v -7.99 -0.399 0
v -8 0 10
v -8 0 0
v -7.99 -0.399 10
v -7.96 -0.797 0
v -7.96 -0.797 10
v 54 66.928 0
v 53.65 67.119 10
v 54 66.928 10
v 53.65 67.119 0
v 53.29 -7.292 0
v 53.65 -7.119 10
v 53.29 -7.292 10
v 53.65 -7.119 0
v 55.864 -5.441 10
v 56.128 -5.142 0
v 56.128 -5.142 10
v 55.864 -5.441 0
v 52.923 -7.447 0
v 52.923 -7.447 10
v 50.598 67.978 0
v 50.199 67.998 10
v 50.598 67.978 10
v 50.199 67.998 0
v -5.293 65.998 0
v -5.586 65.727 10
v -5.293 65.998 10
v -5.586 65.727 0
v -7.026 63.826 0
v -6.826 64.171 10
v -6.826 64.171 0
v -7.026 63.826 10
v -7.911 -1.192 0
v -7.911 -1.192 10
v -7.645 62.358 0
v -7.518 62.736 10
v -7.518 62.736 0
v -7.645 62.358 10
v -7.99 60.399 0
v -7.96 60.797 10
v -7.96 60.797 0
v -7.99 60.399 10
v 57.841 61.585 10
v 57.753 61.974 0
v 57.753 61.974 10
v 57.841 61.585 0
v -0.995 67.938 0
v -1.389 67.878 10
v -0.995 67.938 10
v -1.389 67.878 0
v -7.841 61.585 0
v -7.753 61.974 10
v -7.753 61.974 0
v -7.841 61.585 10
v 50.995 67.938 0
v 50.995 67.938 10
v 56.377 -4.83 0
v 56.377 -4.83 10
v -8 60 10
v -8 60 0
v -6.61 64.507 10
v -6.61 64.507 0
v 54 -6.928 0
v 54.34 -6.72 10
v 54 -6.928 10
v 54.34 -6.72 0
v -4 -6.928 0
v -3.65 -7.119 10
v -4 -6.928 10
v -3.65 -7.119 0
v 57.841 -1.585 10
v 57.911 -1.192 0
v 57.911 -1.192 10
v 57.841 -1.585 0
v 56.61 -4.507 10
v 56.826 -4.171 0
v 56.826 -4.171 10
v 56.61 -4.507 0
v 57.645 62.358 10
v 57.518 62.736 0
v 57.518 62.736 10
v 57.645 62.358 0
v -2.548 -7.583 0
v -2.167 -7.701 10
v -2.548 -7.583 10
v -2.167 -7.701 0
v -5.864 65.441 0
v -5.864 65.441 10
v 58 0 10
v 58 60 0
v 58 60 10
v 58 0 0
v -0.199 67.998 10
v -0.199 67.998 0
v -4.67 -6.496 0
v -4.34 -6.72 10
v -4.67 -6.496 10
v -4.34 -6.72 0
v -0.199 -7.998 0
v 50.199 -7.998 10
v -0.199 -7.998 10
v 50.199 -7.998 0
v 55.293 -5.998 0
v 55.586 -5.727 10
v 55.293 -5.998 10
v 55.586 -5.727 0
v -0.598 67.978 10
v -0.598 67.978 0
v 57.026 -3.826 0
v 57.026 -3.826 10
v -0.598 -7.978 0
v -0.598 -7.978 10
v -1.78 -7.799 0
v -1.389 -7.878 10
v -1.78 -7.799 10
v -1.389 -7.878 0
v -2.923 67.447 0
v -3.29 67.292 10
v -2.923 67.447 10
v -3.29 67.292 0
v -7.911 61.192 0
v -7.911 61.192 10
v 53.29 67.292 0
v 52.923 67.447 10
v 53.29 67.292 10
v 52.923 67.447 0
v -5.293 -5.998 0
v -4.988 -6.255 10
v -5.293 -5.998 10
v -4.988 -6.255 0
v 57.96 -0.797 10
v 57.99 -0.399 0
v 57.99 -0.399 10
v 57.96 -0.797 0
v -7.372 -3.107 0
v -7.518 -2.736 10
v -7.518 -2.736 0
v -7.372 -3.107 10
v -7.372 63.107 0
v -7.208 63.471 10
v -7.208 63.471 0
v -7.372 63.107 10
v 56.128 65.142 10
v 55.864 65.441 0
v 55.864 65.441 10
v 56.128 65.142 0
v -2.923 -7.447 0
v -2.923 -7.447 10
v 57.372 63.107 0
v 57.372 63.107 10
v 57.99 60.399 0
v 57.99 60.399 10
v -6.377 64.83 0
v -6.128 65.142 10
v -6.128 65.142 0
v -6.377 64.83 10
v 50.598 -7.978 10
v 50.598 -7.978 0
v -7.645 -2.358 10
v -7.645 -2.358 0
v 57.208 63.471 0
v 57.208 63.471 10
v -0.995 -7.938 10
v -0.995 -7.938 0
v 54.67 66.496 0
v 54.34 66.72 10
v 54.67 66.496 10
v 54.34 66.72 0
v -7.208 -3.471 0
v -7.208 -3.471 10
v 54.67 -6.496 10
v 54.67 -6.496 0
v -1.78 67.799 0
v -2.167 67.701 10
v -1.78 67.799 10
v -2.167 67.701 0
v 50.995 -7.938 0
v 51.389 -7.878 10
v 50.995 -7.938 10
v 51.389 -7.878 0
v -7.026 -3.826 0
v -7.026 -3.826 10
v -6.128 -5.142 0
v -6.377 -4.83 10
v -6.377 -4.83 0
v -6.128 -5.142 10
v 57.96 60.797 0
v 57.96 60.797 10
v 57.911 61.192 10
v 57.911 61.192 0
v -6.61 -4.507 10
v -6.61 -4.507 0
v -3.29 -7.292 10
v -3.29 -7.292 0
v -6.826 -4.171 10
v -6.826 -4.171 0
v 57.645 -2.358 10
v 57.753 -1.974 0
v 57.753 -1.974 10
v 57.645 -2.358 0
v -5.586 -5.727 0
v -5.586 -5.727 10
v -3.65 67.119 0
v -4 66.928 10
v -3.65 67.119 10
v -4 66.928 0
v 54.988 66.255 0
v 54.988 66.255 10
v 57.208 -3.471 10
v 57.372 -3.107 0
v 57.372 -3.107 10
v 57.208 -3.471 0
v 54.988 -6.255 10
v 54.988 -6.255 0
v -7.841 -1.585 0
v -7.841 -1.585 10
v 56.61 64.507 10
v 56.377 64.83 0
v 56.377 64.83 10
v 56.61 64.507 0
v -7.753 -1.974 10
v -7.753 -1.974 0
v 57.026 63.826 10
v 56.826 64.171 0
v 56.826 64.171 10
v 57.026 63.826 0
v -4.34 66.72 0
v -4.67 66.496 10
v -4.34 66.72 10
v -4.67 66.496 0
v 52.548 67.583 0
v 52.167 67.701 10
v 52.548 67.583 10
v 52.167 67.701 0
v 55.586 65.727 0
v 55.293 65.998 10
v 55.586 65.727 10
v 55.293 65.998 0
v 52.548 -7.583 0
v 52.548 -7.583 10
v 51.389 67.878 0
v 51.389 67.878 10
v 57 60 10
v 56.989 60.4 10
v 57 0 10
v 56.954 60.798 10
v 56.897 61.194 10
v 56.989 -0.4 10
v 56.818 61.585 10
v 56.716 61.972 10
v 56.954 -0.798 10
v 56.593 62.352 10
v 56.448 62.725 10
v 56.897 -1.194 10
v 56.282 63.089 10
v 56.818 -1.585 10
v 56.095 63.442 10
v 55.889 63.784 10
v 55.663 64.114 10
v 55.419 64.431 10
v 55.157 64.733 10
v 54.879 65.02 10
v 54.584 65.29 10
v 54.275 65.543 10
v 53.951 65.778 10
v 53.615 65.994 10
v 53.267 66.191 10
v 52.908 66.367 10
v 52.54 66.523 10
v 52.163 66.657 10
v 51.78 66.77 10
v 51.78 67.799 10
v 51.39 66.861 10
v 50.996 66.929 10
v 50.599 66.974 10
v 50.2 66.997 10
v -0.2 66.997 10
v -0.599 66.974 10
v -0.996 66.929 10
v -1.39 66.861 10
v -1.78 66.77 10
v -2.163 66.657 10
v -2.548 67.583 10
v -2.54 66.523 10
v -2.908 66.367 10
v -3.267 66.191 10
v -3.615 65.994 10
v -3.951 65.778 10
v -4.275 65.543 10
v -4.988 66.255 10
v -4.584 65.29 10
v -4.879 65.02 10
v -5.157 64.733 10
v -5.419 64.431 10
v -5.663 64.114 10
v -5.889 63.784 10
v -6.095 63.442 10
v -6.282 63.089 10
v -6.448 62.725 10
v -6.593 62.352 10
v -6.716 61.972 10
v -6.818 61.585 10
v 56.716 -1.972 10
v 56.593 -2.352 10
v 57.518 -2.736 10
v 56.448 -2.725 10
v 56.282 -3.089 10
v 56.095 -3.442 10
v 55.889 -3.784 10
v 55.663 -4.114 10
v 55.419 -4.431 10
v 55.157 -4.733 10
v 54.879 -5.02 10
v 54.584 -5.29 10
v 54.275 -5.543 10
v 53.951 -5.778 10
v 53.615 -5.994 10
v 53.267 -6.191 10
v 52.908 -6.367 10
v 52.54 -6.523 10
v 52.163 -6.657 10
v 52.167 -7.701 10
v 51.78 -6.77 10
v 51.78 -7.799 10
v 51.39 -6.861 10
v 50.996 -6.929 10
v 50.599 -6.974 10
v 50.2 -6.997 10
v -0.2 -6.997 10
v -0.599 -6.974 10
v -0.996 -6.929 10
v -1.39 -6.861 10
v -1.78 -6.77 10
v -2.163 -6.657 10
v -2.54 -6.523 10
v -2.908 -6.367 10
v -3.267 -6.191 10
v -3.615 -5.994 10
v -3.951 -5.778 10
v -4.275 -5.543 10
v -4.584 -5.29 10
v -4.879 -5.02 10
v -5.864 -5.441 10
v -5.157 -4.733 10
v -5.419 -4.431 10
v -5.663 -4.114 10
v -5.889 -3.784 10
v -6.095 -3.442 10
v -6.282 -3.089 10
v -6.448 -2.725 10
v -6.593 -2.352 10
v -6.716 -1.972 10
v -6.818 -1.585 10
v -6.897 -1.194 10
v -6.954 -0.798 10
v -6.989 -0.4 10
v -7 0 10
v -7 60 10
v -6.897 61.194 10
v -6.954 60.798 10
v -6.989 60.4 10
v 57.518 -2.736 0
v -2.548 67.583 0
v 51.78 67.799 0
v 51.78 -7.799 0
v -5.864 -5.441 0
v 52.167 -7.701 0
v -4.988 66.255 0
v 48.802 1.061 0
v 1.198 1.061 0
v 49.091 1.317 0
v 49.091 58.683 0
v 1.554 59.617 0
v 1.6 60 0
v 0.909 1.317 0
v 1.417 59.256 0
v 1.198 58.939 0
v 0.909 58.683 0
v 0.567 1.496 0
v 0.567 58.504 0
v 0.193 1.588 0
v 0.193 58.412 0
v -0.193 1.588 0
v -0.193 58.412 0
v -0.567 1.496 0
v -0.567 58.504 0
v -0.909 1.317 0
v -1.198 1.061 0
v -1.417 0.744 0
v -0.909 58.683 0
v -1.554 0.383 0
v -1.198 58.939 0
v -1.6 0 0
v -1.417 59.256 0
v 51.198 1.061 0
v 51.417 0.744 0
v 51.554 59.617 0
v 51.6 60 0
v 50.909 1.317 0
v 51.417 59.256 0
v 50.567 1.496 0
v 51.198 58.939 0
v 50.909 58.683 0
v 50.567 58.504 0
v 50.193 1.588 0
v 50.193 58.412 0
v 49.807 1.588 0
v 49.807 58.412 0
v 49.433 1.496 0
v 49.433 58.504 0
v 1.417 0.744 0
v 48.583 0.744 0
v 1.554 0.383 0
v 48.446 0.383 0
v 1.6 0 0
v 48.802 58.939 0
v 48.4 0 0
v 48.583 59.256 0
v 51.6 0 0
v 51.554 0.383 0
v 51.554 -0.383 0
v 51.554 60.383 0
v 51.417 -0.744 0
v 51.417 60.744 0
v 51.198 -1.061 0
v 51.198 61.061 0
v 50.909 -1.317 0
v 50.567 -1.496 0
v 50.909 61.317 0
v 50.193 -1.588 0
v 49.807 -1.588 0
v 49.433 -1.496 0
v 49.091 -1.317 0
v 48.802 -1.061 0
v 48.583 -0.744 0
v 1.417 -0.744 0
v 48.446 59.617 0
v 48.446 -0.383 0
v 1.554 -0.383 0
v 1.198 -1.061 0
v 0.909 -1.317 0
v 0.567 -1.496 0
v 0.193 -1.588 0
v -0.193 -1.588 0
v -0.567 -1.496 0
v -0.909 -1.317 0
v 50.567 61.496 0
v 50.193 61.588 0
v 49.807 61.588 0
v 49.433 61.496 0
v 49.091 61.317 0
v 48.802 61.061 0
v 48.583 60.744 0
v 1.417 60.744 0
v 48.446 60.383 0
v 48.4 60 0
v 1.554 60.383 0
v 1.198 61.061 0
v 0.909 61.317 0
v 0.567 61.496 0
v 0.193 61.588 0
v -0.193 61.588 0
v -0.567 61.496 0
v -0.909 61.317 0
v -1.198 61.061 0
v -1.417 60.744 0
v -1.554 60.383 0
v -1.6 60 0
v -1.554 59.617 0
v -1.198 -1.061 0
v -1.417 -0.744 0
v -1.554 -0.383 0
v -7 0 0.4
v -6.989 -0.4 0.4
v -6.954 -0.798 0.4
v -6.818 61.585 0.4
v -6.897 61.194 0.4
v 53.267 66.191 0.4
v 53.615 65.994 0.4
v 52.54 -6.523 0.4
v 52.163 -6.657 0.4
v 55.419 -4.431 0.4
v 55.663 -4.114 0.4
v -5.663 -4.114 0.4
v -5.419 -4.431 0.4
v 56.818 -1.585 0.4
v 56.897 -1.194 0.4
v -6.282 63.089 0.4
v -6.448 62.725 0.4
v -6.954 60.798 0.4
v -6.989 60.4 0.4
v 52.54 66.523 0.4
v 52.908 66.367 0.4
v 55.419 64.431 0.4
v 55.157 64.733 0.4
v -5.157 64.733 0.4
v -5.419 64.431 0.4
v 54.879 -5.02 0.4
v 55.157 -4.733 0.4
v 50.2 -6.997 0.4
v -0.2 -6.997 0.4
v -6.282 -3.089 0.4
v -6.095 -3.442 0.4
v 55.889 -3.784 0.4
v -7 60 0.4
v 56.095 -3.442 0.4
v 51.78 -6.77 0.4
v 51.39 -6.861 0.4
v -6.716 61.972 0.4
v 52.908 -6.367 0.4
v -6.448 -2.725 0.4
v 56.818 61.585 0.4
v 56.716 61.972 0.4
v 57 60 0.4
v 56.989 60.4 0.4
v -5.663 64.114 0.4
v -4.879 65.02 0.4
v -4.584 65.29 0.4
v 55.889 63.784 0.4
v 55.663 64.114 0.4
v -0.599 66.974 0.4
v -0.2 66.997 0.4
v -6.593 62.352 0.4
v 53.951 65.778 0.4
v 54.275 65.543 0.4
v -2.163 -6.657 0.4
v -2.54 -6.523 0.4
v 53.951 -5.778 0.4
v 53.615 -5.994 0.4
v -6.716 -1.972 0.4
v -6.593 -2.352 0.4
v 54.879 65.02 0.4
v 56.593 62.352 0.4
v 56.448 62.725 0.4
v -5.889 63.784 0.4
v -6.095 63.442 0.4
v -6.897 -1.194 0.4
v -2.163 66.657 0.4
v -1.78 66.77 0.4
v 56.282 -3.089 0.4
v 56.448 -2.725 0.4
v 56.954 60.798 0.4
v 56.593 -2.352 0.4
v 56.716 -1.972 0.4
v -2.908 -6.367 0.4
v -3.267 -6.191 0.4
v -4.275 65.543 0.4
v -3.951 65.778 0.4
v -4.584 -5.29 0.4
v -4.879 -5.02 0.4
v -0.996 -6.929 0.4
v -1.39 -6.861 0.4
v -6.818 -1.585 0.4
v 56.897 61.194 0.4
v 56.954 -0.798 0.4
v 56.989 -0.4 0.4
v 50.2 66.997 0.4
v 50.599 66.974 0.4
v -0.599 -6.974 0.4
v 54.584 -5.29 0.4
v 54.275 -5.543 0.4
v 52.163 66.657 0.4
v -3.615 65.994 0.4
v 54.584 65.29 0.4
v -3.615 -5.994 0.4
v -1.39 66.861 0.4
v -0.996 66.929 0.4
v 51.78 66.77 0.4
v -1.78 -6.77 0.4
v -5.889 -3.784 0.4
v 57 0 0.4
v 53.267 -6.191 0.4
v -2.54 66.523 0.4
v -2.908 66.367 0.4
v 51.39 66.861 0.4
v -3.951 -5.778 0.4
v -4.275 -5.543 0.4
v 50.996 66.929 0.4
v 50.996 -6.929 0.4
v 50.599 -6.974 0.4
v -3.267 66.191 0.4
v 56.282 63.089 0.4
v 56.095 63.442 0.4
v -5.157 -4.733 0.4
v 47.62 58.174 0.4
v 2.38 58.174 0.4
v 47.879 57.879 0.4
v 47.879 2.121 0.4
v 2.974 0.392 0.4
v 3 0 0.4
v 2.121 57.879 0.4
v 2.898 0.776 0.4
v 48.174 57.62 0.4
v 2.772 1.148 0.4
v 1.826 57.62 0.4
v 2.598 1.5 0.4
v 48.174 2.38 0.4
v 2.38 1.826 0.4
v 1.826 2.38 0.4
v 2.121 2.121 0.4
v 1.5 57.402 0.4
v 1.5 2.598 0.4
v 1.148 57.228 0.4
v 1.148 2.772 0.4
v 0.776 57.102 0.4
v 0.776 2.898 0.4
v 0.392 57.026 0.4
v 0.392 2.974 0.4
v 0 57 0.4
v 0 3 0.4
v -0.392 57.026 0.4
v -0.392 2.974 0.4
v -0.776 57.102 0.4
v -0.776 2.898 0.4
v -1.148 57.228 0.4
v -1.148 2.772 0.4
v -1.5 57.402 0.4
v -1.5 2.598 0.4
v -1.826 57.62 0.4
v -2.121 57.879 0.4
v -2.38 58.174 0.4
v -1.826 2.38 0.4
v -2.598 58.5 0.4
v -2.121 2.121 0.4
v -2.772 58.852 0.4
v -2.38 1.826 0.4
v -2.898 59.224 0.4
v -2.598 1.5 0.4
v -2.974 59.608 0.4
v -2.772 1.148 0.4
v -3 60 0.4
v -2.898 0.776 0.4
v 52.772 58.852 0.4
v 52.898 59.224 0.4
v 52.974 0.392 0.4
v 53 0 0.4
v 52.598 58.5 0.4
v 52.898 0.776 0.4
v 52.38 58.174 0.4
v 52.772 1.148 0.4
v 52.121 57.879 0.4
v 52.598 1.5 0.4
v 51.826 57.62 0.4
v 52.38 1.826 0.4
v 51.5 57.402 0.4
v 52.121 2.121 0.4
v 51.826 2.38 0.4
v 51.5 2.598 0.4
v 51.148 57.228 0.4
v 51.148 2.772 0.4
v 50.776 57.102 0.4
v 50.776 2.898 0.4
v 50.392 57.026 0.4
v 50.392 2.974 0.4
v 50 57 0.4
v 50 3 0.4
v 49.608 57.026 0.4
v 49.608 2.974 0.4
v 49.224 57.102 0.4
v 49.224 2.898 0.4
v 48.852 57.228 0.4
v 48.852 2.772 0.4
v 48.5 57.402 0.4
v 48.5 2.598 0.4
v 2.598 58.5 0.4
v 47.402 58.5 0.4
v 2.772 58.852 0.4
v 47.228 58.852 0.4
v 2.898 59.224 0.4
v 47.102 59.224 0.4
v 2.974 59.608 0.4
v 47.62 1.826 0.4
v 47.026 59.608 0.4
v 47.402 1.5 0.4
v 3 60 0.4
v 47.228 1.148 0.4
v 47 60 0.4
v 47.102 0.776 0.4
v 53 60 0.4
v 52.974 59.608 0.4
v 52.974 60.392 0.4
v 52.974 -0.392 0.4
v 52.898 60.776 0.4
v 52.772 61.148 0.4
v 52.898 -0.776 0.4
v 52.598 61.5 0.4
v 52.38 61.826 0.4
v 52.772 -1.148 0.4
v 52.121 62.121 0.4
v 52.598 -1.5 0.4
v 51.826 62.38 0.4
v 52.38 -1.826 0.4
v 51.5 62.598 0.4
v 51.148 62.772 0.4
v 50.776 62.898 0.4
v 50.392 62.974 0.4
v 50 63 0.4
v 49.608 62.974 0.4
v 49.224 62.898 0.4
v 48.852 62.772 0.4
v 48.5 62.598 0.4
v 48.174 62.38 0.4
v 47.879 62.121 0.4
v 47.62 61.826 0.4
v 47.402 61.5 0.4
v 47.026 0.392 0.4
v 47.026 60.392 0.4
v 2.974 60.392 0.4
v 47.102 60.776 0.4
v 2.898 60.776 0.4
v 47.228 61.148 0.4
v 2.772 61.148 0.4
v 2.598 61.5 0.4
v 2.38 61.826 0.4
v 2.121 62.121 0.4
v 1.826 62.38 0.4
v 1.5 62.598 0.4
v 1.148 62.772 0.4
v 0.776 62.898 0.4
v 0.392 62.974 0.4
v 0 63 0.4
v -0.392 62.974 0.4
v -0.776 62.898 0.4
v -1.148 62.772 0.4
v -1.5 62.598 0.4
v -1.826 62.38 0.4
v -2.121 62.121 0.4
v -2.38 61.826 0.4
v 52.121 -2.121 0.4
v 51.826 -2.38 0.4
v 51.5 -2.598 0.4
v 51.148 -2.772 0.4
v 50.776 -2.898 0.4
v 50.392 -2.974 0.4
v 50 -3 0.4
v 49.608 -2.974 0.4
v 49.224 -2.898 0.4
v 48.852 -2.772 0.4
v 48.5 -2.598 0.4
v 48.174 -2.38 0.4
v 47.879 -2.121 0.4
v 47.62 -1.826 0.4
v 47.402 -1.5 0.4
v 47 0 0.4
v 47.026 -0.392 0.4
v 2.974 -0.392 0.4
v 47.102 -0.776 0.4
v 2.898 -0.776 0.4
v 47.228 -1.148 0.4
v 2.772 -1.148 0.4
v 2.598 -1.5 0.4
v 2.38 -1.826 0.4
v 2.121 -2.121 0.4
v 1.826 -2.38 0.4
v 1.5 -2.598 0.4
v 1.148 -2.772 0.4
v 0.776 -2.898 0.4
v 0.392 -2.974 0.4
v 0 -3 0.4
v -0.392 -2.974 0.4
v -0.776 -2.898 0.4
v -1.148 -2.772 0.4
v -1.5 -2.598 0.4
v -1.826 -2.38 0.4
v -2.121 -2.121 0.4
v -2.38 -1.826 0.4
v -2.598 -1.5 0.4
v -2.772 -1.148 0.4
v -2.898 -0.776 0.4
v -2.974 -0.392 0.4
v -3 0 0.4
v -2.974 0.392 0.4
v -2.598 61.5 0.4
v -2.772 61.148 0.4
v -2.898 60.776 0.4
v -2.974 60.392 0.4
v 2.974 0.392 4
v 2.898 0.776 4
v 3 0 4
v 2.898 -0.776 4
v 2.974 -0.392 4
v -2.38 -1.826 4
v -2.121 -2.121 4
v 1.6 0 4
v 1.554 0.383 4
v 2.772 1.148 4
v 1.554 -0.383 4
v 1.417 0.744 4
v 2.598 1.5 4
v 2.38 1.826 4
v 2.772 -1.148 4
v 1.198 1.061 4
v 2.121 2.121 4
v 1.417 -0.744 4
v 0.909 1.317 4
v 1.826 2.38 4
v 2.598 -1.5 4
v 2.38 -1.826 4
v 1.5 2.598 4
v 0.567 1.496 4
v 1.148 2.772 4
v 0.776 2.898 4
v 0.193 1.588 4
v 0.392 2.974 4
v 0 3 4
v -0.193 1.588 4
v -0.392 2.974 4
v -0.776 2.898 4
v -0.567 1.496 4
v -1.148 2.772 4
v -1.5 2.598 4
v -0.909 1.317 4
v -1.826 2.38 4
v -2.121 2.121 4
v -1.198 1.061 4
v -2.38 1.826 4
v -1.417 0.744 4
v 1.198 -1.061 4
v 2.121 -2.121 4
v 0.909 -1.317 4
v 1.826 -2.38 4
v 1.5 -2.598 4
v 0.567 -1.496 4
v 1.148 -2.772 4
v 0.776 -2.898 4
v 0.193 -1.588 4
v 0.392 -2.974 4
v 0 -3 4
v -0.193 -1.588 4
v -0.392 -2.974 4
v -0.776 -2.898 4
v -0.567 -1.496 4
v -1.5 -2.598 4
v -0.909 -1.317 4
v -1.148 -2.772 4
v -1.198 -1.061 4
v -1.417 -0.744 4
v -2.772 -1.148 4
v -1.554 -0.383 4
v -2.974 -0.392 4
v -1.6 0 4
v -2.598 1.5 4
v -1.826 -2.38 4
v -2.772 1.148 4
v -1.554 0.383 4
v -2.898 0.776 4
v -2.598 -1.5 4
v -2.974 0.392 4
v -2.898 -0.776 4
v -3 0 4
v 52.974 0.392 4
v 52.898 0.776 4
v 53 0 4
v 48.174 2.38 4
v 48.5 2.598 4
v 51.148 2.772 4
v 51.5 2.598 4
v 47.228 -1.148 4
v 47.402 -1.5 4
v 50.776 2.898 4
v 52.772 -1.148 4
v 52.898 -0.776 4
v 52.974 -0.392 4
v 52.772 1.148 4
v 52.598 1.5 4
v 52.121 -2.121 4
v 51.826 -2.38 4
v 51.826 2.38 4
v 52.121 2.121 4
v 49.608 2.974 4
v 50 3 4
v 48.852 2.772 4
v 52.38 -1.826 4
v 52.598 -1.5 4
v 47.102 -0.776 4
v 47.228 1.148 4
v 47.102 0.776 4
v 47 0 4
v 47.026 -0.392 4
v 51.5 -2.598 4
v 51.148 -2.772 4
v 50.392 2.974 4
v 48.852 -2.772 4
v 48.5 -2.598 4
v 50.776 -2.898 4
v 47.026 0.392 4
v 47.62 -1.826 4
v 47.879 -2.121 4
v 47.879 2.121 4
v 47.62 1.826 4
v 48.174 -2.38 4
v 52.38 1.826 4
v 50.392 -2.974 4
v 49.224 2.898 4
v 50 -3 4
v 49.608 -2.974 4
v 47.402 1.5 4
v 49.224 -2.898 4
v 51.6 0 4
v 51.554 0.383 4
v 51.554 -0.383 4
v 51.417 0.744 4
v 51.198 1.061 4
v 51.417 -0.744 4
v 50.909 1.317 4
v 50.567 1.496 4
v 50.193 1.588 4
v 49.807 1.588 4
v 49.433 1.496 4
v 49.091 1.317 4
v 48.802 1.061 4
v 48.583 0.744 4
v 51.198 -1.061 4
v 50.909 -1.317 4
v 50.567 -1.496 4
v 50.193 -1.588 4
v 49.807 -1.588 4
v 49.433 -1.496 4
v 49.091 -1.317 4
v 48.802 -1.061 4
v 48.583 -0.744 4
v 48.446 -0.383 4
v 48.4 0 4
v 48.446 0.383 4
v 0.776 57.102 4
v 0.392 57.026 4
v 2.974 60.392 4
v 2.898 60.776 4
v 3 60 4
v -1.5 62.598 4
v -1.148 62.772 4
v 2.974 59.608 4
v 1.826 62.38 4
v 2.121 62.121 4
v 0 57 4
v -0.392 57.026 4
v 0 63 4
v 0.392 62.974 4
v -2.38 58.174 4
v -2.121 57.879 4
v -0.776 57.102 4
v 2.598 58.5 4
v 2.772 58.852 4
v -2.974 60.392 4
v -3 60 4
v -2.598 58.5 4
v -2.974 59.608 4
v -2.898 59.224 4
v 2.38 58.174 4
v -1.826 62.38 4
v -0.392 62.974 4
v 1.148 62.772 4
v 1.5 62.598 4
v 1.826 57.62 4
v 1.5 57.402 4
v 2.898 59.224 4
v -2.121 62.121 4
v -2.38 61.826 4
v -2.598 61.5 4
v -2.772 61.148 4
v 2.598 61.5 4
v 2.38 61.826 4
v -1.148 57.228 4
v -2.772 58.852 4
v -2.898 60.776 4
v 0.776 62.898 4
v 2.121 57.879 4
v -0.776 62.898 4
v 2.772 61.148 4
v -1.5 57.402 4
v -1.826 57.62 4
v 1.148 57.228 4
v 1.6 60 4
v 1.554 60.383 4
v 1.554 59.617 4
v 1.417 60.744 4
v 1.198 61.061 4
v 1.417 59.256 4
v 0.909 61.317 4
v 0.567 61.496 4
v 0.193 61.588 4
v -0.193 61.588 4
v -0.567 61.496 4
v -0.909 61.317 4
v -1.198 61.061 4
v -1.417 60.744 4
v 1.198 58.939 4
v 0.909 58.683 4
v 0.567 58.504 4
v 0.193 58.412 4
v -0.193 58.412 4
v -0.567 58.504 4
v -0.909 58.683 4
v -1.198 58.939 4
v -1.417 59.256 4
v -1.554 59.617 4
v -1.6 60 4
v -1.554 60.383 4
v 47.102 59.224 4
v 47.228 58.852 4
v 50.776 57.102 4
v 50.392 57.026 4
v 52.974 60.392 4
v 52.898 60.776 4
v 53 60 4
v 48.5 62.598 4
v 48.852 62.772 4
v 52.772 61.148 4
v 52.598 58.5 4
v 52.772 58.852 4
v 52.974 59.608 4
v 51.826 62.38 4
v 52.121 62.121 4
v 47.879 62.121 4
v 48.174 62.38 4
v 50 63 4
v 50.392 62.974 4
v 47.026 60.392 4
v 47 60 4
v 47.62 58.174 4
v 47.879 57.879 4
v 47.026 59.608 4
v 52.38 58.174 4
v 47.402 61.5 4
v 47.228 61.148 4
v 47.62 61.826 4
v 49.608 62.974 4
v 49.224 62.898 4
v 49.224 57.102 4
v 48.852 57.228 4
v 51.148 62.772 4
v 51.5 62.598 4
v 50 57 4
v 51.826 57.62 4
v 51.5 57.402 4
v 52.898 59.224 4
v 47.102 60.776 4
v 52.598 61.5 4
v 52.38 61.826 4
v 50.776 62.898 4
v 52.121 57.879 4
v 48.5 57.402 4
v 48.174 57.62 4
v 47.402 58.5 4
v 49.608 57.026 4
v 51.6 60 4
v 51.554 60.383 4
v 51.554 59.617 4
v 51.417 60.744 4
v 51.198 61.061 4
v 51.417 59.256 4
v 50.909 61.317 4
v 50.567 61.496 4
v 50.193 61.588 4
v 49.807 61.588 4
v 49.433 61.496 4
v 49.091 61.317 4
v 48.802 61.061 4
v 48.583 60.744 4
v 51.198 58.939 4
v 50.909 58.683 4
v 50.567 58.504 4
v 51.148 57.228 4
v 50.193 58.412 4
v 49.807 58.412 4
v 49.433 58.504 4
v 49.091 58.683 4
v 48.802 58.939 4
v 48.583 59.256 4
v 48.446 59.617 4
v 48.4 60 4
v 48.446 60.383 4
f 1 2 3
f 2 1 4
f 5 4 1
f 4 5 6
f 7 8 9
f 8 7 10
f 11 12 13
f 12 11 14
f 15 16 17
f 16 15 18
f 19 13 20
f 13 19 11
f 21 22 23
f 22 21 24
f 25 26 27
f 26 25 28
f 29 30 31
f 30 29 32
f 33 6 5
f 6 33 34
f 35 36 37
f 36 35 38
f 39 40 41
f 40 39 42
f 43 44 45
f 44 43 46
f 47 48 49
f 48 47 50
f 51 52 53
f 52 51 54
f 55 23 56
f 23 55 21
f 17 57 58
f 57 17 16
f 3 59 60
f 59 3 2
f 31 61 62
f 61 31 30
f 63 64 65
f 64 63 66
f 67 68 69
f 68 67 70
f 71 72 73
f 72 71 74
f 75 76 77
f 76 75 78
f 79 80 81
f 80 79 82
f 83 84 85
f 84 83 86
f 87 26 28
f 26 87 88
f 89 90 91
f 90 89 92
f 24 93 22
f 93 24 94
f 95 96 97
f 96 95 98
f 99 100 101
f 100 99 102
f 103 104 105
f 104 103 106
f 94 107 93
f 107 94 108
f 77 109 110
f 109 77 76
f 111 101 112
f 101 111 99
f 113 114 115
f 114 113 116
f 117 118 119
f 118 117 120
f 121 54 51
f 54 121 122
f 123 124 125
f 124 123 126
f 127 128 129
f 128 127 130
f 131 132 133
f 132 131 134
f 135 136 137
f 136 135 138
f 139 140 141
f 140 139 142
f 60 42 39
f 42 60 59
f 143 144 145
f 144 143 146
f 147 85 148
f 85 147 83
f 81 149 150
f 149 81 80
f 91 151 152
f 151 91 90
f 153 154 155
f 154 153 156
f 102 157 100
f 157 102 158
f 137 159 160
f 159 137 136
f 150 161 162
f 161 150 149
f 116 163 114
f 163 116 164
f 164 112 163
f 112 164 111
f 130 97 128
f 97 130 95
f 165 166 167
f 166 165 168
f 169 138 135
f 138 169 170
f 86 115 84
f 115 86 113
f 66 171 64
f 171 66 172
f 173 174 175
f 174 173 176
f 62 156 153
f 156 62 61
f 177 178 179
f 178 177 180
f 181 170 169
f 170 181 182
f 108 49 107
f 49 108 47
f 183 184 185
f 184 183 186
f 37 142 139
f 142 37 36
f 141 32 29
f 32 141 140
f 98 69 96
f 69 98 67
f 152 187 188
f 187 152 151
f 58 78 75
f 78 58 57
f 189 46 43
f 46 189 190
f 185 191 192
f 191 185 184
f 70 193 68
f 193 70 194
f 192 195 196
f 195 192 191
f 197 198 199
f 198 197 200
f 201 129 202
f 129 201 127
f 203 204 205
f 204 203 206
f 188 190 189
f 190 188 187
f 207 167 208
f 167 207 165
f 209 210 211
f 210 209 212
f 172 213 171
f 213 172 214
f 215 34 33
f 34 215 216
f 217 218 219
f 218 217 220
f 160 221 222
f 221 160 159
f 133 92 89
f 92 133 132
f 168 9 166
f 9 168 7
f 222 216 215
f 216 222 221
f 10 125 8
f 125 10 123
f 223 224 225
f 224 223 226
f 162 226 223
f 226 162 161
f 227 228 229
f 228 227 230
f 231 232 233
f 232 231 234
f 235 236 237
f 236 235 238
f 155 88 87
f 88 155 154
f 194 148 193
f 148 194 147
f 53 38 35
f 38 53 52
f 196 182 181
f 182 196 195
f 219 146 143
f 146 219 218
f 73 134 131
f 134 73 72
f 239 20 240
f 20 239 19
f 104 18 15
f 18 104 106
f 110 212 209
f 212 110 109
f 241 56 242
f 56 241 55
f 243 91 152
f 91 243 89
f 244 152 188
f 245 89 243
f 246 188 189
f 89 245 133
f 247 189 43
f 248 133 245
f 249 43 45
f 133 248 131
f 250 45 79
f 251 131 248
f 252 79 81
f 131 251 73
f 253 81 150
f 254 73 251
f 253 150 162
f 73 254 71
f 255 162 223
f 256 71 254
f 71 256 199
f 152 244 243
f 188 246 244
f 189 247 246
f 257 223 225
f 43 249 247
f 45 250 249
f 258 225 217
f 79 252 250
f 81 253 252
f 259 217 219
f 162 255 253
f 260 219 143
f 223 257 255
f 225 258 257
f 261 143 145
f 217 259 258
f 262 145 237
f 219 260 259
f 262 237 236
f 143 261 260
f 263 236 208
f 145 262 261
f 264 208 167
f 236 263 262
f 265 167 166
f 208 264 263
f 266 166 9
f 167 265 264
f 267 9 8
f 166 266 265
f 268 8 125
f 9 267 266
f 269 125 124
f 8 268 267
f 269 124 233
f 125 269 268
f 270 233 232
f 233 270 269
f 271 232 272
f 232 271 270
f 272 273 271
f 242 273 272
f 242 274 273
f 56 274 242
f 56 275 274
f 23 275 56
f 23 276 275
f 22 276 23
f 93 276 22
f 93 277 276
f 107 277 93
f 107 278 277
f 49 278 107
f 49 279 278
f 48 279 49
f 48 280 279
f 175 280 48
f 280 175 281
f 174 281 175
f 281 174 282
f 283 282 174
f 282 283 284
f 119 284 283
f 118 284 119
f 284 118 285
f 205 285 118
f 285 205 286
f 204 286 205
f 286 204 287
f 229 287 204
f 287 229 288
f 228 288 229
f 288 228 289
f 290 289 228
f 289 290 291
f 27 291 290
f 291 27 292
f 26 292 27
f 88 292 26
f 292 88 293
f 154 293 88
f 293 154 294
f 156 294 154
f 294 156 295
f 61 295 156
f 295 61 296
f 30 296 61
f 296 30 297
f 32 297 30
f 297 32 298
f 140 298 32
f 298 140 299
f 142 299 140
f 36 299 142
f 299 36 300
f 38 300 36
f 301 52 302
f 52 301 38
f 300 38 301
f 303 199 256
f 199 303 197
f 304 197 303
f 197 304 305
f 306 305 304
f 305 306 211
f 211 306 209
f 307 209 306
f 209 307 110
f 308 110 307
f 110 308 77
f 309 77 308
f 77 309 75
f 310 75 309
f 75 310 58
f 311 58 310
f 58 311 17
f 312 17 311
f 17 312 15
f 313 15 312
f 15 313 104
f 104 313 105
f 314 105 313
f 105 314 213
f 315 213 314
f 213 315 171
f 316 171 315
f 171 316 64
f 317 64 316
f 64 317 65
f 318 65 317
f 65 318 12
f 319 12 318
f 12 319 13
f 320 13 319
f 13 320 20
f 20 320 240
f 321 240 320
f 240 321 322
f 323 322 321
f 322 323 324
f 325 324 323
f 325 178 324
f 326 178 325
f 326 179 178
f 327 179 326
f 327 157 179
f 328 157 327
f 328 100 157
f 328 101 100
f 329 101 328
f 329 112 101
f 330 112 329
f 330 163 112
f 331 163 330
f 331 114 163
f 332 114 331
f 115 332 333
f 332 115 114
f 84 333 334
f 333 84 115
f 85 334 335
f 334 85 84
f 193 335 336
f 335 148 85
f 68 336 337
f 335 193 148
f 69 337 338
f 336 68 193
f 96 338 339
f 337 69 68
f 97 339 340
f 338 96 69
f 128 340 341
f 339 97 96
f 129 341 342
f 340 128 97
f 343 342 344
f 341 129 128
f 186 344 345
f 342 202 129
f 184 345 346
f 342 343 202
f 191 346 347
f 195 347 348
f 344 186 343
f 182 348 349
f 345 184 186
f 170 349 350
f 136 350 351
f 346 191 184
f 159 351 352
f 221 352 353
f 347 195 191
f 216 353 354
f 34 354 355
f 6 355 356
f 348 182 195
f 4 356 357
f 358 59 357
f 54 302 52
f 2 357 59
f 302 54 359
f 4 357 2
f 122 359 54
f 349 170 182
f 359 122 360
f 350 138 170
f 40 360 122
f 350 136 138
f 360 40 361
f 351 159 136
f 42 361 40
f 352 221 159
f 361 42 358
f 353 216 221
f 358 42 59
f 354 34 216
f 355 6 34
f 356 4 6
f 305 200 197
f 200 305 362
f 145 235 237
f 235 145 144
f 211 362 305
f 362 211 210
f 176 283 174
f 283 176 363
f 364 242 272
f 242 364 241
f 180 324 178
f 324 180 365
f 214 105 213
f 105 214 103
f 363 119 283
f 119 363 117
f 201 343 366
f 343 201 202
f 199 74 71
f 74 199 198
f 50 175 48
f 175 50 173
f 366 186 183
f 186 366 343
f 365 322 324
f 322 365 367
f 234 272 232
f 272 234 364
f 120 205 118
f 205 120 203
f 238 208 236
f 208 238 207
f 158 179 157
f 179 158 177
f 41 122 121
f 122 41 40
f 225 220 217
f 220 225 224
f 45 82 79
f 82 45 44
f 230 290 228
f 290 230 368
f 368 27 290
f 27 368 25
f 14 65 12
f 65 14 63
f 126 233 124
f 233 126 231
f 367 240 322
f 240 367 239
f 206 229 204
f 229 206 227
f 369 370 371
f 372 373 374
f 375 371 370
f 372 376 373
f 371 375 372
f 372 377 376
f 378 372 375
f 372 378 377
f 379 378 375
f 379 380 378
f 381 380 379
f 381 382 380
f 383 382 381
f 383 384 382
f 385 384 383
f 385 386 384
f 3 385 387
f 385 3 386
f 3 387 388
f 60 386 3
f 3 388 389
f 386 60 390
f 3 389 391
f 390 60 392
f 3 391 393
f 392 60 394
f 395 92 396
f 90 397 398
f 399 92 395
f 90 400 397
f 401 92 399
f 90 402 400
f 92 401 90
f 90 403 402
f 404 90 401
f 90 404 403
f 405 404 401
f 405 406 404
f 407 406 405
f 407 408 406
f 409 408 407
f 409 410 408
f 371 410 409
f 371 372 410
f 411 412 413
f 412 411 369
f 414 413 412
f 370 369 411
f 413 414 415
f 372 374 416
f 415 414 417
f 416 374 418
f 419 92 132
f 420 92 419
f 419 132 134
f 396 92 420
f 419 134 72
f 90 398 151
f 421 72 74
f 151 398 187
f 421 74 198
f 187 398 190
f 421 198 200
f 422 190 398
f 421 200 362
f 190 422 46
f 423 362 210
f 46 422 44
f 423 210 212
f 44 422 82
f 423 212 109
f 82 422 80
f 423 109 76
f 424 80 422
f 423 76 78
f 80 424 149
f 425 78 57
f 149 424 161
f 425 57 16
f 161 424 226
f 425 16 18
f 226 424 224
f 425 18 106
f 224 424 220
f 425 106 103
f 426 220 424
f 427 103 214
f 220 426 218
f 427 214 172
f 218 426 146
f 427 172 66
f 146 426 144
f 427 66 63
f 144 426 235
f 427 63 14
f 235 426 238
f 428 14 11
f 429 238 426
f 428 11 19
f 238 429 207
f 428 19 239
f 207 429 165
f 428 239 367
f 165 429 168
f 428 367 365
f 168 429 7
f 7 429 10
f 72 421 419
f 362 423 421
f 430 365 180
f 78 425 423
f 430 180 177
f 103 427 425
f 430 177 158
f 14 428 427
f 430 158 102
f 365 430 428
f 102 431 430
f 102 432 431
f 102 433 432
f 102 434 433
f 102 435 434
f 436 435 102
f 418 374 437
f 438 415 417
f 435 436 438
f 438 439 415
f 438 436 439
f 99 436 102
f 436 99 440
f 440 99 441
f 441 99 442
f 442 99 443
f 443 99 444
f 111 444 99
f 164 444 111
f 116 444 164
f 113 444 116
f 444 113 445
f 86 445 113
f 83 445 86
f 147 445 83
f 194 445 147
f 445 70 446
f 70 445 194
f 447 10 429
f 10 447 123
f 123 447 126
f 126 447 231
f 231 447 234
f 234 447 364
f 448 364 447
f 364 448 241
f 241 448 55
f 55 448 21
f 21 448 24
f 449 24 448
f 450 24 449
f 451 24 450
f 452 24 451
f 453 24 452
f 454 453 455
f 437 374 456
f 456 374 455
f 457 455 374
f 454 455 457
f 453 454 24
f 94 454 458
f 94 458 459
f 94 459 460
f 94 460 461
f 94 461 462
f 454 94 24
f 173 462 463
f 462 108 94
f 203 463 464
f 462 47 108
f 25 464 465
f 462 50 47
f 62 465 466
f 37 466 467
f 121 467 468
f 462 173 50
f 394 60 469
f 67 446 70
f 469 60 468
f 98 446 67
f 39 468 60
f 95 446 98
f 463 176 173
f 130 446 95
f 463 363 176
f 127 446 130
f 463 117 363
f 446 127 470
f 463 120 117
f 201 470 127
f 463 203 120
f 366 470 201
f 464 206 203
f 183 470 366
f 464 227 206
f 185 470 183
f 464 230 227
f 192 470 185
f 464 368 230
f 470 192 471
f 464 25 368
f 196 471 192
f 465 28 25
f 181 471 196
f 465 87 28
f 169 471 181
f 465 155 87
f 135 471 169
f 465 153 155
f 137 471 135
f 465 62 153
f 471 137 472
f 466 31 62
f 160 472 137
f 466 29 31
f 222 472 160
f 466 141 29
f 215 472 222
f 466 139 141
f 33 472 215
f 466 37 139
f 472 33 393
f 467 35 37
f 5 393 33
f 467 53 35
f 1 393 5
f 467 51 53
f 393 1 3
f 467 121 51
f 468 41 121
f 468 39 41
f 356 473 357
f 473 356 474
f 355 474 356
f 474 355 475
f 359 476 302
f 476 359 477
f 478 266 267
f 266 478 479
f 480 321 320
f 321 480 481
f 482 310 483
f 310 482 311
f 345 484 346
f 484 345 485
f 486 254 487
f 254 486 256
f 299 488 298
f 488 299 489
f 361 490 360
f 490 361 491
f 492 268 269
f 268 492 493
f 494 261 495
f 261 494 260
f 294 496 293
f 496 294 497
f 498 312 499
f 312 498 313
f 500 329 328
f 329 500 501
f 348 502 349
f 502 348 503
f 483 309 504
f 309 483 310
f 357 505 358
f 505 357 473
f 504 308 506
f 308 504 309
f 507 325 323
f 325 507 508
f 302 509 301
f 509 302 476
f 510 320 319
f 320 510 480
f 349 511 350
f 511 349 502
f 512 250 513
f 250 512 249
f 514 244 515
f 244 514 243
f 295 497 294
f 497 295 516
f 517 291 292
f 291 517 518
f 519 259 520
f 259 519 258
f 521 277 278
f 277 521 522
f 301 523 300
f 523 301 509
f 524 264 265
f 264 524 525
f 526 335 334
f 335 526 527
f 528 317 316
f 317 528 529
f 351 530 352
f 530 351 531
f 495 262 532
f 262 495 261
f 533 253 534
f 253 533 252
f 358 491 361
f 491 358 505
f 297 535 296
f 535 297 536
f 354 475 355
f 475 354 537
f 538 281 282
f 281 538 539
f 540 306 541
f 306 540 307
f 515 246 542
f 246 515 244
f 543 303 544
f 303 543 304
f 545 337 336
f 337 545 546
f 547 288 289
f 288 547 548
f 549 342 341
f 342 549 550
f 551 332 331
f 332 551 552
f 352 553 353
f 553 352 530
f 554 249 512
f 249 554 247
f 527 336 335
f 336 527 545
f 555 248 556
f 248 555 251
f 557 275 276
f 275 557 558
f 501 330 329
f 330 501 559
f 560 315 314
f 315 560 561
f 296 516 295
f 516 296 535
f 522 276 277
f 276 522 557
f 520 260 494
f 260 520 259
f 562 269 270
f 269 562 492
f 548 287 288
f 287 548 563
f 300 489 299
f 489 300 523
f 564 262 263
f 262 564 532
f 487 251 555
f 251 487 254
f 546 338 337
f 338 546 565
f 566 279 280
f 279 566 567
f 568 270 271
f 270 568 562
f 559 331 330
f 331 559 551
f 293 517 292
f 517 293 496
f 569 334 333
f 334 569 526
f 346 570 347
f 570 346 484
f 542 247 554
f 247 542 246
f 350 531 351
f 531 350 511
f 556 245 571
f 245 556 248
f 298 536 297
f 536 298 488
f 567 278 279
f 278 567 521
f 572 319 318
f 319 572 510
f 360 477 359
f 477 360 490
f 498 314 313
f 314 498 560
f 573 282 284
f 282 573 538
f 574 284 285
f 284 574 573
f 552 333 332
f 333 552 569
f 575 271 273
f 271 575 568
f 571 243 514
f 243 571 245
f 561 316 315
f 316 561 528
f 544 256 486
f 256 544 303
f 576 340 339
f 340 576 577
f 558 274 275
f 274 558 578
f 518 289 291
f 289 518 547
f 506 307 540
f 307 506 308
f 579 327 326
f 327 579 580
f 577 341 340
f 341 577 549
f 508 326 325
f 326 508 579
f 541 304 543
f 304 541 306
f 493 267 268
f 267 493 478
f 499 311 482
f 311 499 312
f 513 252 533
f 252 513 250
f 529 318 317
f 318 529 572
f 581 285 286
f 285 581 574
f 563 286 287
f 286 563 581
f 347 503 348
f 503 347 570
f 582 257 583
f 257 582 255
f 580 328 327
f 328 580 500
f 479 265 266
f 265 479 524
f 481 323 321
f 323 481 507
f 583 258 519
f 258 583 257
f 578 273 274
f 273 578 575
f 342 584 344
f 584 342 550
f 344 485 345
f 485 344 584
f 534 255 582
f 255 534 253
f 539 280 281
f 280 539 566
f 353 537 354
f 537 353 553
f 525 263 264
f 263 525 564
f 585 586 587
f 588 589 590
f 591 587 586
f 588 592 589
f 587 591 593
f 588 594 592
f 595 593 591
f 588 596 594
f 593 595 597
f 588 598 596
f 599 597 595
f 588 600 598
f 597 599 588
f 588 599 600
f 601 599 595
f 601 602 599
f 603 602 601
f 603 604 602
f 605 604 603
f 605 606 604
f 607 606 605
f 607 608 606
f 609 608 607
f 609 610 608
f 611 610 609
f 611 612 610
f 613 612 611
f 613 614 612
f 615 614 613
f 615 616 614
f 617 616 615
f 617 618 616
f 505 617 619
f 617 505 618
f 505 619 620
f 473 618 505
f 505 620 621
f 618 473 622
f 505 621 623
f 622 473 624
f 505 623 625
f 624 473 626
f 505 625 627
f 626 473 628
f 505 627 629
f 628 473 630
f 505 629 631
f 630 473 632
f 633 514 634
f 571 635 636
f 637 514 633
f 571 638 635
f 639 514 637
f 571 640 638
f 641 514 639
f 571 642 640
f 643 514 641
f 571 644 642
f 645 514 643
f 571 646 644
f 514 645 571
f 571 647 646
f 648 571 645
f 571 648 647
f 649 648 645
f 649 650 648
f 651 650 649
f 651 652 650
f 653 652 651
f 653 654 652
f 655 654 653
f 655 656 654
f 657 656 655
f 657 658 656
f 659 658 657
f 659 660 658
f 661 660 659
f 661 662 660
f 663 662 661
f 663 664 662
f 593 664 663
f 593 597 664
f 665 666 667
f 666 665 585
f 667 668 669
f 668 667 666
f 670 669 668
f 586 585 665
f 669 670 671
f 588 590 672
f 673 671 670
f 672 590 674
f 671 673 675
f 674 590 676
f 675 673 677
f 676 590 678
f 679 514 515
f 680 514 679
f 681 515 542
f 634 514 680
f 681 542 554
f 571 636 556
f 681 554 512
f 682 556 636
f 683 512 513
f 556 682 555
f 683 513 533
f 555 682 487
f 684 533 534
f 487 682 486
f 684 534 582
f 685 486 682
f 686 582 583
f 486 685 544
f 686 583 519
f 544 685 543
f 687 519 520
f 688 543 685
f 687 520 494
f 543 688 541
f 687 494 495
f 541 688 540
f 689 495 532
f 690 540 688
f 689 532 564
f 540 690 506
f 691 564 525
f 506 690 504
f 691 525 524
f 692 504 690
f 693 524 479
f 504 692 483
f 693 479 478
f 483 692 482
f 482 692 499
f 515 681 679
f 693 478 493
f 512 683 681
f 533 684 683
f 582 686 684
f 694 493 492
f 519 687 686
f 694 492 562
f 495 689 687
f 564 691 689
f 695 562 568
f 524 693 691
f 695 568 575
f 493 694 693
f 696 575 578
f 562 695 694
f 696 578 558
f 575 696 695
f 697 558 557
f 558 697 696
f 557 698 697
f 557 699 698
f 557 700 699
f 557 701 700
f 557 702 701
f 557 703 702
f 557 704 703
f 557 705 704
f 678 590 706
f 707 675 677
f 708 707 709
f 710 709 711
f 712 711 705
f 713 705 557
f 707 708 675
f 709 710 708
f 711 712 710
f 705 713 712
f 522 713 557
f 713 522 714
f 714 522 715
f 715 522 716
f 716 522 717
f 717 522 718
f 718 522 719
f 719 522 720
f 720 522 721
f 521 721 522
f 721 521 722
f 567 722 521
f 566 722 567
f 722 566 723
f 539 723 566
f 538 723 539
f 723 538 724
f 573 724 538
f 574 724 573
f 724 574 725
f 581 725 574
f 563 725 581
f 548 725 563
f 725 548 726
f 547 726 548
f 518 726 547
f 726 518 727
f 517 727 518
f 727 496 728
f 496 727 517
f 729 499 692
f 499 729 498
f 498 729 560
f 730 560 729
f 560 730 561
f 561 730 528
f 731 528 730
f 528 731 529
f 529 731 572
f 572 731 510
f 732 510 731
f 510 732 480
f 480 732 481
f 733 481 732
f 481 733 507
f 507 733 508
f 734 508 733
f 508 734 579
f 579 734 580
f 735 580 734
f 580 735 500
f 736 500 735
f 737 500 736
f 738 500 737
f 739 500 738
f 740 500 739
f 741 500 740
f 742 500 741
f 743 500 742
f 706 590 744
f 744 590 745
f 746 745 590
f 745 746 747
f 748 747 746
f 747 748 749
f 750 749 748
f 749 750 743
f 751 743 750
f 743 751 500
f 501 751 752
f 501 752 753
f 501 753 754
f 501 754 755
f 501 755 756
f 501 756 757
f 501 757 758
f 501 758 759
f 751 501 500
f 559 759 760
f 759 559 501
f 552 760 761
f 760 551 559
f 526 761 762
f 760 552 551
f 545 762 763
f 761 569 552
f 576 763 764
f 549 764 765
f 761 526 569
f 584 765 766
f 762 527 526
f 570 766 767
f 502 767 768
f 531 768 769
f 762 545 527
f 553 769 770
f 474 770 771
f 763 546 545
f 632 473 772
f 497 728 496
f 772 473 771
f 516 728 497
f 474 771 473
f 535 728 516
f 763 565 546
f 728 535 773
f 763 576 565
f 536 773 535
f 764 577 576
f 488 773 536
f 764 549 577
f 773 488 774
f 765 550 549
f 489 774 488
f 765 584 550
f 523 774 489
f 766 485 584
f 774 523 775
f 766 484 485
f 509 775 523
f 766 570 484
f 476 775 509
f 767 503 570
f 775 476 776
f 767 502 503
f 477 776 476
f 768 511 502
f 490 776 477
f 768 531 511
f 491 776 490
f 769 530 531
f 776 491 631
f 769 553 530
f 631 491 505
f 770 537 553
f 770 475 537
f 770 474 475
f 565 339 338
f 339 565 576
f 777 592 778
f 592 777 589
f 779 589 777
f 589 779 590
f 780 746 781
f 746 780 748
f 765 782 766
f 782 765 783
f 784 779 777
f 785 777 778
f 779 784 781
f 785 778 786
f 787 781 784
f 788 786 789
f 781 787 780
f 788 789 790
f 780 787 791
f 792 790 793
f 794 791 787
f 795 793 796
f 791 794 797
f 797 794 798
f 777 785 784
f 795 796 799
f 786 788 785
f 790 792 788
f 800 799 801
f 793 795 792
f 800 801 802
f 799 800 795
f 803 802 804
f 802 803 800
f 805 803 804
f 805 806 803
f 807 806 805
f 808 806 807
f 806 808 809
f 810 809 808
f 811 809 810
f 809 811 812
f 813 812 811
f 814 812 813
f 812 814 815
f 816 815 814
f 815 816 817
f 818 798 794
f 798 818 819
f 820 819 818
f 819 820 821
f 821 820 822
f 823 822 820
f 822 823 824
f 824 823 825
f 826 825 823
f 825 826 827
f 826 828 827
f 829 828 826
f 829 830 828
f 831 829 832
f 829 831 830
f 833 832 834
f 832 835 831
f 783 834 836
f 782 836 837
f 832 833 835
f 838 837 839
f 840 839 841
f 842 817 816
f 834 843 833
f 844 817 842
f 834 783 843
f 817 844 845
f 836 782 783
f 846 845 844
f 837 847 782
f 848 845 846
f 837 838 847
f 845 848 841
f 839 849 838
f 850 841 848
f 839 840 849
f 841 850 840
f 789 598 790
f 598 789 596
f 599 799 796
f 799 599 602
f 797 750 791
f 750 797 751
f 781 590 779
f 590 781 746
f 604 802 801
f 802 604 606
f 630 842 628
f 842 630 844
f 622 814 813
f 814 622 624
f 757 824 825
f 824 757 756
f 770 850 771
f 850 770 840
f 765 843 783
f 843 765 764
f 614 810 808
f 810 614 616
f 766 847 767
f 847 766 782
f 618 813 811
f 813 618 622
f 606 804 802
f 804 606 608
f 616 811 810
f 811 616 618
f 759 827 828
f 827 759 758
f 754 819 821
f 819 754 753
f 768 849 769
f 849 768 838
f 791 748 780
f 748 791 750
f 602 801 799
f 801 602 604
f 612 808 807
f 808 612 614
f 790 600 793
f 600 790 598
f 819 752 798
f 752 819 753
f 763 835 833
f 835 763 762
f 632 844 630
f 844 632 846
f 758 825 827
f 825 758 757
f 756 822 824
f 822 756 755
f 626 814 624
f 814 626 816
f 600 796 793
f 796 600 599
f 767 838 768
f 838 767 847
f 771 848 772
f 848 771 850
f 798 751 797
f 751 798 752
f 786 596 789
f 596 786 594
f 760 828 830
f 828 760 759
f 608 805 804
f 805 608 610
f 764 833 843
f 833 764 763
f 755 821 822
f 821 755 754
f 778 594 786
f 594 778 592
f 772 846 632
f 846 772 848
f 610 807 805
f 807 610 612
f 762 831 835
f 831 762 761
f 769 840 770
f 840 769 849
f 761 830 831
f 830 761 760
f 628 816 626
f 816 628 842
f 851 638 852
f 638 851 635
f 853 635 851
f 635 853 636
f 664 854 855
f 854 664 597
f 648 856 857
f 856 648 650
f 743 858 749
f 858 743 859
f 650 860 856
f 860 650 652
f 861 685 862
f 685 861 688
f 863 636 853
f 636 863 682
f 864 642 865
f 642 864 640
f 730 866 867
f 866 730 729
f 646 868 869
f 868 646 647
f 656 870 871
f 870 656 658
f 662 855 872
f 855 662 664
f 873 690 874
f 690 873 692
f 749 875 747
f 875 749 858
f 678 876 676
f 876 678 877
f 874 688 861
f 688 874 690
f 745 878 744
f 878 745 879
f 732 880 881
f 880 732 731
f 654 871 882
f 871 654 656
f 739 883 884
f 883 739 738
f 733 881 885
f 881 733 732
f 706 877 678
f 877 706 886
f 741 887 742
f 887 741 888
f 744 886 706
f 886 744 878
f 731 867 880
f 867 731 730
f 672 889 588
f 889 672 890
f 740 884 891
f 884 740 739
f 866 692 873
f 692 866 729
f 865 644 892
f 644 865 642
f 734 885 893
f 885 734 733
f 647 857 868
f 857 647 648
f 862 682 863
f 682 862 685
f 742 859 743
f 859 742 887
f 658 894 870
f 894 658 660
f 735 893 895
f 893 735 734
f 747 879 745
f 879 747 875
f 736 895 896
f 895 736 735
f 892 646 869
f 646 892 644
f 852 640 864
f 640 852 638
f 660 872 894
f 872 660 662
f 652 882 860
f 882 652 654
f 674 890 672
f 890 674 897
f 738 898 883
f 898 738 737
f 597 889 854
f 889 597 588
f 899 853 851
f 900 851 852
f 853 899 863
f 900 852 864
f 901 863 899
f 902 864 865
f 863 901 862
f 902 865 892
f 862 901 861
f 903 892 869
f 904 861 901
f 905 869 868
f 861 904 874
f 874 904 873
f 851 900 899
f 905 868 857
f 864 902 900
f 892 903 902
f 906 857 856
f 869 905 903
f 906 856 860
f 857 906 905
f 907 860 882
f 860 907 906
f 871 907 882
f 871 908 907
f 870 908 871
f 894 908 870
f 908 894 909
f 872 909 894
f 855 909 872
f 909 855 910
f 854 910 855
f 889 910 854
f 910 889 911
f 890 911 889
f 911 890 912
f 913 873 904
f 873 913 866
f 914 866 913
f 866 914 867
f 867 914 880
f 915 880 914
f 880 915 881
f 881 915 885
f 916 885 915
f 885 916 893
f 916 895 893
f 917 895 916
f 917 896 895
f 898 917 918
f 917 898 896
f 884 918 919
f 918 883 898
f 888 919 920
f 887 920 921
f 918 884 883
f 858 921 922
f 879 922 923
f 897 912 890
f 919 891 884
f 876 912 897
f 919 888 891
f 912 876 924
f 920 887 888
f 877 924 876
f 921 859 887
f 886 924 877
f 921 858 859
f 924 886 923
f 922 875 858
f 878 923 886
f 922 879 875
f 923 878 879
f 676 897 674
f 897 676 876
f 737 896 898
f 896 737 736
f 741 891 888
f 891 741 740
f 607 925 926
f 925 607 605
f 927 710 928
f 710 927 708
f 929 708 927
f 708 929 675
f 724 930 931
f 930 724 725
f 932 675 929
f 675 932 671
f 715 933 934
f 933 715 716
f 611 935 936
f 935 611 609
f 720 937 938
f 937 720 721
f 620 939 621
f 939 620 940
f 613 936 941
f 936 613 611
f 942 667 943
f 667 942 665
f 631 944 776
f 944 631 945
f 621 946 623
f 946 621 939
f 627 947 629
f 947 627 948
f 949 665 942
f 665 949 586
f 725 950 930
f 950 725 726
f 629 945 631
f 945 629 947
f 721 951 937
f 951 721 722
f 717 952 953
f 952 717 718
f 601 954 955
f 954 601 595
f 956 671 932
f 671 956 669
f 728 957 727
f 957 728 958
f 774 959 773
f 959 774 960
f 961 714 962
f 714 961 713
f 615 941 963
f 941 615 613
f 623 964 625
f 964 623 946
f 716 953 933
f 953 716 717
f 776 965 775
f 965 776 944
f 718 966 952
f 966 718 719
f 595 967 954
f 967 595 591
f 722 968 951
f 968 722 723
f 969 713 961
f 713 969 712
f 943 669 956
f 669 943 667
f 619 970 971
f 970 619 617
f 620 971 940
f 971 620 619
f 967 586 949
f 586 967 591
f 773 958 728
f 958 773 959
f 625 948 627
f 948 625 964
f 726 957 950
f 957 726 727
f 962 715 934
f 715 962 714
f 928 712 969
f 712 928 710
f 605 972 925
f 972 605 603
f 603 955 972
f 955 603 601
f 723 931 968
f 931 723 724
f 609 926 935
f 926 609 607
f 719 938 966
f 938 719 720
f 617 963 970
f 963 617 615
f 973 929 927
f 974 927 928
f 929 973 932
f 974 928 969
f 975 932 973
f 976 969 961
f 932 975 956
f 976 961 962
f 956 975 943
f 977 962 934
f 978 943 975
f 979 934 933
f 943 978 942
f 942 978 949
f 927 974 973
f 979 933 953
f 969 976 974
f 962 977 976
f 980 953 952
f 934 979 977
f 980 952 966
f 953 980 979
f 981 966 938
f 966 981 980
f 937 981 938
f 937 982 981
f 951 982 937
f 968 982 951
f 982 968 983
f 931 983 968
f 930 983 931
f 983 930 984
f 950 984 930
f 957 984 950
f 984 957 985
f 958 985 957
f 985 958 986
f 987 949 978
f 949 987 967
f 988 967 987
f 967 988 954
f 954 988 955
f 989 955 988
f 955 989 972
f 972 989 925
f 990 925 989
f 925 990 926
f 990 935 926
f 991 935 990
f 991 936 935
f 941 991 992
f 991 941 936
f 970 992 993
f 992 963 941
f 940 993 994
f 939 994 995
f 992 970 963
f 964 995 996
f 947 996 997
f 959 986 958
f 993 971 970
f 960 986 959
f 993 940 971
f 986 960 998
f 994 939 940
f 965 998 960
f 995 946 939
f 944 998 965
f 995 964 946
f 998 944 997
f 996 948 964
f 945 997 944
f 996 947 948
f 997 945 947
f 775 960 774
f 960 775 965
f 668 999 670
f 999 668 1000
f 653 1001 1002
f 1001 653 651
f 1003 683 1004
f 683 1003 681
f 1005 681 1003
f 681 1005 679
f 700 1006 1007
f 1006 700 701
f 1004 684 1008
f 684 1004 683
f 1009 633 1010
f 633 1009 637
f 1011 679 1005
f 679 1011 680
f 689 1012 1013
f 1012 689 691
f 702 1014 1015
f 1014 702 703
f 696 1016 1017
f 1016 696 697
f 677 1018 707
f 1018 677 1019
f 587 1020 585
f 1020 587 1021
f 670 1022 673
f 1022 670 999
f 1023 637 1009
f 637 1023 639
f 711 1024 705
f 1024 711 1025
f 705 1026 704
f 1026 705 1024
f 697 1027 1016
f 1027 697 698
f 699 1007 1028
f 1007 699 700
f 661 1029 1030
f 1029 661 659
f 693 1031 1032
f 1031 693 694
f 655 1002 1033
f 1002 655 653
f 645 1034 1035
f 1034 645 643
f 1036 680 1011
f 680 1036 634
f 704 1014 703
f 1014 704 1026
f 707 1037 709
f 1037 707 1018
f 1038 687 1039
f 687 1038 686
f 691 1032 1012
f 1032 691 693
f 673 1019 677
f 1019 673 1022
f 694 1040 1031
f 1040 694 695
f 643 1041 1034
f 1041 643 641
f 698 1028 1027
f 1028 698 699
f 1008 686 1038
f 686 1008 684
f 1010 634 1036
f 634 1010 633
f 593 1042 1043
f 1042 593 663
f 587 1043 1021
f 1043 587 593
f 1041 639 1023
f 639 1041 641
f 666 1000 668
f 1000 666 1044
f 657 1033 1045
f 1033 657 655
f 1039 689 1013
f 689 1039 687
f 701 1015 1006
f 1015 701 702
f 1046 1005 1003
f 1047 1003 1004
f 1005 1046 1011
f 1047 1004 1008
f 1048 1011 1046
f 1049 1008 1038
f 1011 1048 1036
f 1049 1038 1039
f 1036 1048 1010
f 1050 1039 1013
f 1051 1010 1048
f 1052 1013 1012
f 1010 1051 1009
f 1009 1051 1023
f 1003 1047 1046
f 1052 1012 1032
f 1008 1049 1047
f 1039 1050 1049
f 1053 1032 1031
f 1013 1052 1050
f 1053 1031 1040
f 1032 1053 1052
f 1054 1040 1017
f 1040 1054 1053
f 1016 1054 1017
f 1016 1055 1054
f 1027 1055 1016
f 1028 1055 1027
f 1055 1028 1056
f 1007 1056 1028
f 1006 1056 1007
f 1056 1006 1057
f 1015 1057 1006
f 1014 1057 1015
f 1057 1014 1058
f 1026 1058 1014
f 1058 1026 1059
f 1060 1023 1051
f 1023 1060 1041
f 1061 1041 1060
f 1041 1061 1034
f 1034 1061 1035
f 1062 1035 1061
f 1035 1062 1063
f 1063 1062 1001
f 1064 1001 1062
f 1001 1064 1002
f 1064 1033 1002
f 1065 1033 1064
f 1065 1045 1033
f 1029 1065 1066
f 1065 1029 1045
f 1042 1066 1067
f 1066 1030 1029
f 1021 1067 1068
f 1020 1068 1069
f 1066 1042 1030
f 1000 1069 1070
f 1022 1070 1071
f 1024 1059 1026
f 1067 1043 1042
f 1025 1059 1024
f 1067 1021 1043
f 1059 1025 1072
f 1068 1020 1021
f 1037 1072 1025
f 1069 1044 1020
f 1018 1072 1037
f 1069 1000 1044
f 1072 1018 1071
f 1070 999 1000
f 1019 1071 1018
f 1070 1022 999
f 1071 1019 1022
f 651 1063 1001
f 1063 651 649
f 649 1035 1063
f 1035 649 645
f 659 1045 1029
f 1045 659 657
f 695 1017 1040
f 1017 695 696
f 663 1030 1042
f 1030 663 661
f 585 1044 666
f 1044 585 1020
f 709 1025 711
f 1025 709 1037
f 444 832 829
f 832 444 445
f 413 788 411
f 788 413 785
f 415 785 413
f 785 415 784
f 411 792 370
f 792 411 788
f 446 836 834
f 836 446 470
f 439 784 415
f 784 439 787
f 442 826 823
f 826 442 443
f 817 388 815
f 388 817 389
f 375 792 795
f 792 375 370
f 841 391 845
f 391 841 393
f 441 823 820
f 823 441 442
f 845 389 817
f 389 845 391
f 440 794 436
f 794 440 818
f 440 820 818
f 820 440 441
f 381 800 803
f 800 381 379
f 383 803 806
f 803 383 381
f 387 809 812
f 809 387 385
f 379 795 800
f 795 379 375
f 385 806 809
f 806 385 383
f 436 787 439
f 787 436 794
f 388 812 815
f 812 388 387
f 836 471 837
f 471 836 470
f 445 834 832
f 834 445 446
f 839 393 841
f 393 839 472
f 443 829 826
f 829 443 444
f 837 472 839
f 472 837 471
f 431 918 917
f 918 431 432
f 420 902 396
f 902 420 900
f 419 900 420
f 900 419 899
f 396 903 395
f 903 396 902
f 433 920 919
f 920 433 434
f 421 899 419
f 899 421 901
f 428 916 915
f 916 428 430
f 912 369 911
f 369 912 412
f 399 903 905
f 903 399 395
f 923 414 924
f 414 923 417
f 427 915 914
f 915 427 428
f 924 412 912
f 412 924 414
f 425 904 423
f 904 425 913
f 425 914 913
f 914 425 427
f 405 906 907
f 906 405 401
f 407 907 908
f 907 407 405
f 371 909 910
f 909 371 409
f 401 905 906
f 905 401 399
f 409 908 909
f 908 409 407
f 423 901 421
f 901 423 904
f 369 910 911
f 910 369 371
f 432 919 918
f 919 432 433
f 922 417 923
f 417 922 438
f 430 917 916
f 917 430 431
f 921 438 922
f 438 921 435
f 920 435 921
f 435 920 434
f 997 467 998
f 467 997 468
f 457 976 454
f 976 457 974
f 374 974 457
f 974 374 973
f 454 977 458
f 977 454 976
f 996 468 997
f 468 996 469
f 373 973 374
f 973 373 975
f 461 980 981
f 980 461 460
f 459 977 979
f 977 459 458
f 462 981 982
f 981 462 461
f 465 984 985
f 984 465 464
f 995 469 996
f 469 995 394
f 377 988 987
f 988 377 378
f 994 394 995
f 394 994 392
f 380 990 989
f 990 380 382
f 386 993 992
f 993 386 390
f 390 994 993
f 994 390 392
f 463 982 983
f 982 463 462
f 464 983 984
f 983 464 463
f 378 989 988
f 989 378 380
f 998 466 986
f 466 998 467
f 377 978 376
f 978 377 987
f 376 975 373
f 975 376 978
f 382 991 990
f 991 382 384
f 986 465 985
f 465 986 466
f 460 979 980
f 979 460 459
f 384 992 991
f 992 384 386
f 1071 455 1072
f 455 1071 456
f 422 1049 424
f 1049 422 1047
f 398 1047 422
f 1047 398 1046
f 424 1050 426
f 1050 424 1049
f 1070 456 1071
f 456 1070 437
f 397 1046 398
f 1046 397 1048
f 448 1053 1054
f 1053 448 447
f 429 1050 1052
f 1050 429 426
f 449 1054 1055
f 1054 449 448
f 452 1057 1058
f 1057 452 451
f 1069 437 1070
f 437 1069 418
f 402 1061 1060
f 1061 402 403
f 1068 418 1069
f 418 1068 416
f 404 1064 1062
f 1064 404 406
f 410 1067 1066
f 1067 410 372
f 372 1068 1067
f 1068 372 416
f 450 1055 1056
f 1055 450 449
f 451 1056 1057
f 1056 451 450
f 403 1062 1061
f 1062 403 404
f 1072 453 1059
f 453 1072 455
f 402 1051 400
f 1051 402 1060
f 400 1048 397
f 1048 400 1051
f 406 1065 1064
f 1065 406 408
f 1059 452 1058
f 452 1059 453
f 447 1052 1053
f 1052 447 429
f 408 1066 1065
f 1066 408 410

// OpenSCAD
$fs = 0.4;
$fa = 1;

// robofootball canopy
board_x = 60;
board_y = 70;
hole_spacing_x = 50;
hole_spacing_y = 60;
radius = 8;
base_thickness = 0.4;
wall_thickness = 1;
canopy_thickness = 10;
screwhole_d = 3.2;
screwhole_reinforce_d = 6;
screwhole_reinforce_h = 4;

module base_profile(rad) {
  hull() {
    circle(r=rad);
    translate([hole_spacing_x,0])
      circle(r=rad);
    translate([0, hole_spacing_y])
      circle(r=rad);
    translate([hole_spacing_x,hole_spacing_y])
      circle(r=rad);
  }
}

module screwholes_reinforce() {
  translate([0,0,0])
    cylinder(d=screwhole_reinforce_d, h=screwhole_reinforce_h);
  translate([hole_spacing_x,0,0])
    cylinder(d=screwhole_reinforce_d, h=screwhole_reinforce_h);
  translate([0,hole_spacing_y,0])
    cylinder(d=screwhole_reinforce_d, h=screwhole_reinforce_h);
  translate([hole_spacing_x,hole_spacing_y,0])
    cylinder(d=screwhole_reinforce_d, h=screwhole_reinforce_h);
}

module solid_canopy() {
  difference() {
    linear_extrude(height=canopy_thickness)
      base_profile(rad=radius);
    translate([0,0,base_thickness])
      linear_extrude(height=canopy_thickness)
        base_profile(rad=radius-wall_thickness);
  }
  screwholes_reinforce();
}

module screwholes() {
  translate([0,0,-1])
    cylinder(d=screwhole_d, h=canopy_thickness+2);
  translate([hole_spacing_x,0,-1])
    cylinder(d=screwhole_d, h=canopy_thickness+2);
  translate([0,hole_spacing_y,-1])
    cylinder(d=screwhole_d, h=canopy_thickness+2);
  translate([hole_spacing_x,hole_spacing_y,-1])
    cylinder(d=screwhole_d, h=canopy_thickness+2);
}



module canopy() {
  difference() {
    solid_canopy();
    screwholes();
  }
}

canopy();
